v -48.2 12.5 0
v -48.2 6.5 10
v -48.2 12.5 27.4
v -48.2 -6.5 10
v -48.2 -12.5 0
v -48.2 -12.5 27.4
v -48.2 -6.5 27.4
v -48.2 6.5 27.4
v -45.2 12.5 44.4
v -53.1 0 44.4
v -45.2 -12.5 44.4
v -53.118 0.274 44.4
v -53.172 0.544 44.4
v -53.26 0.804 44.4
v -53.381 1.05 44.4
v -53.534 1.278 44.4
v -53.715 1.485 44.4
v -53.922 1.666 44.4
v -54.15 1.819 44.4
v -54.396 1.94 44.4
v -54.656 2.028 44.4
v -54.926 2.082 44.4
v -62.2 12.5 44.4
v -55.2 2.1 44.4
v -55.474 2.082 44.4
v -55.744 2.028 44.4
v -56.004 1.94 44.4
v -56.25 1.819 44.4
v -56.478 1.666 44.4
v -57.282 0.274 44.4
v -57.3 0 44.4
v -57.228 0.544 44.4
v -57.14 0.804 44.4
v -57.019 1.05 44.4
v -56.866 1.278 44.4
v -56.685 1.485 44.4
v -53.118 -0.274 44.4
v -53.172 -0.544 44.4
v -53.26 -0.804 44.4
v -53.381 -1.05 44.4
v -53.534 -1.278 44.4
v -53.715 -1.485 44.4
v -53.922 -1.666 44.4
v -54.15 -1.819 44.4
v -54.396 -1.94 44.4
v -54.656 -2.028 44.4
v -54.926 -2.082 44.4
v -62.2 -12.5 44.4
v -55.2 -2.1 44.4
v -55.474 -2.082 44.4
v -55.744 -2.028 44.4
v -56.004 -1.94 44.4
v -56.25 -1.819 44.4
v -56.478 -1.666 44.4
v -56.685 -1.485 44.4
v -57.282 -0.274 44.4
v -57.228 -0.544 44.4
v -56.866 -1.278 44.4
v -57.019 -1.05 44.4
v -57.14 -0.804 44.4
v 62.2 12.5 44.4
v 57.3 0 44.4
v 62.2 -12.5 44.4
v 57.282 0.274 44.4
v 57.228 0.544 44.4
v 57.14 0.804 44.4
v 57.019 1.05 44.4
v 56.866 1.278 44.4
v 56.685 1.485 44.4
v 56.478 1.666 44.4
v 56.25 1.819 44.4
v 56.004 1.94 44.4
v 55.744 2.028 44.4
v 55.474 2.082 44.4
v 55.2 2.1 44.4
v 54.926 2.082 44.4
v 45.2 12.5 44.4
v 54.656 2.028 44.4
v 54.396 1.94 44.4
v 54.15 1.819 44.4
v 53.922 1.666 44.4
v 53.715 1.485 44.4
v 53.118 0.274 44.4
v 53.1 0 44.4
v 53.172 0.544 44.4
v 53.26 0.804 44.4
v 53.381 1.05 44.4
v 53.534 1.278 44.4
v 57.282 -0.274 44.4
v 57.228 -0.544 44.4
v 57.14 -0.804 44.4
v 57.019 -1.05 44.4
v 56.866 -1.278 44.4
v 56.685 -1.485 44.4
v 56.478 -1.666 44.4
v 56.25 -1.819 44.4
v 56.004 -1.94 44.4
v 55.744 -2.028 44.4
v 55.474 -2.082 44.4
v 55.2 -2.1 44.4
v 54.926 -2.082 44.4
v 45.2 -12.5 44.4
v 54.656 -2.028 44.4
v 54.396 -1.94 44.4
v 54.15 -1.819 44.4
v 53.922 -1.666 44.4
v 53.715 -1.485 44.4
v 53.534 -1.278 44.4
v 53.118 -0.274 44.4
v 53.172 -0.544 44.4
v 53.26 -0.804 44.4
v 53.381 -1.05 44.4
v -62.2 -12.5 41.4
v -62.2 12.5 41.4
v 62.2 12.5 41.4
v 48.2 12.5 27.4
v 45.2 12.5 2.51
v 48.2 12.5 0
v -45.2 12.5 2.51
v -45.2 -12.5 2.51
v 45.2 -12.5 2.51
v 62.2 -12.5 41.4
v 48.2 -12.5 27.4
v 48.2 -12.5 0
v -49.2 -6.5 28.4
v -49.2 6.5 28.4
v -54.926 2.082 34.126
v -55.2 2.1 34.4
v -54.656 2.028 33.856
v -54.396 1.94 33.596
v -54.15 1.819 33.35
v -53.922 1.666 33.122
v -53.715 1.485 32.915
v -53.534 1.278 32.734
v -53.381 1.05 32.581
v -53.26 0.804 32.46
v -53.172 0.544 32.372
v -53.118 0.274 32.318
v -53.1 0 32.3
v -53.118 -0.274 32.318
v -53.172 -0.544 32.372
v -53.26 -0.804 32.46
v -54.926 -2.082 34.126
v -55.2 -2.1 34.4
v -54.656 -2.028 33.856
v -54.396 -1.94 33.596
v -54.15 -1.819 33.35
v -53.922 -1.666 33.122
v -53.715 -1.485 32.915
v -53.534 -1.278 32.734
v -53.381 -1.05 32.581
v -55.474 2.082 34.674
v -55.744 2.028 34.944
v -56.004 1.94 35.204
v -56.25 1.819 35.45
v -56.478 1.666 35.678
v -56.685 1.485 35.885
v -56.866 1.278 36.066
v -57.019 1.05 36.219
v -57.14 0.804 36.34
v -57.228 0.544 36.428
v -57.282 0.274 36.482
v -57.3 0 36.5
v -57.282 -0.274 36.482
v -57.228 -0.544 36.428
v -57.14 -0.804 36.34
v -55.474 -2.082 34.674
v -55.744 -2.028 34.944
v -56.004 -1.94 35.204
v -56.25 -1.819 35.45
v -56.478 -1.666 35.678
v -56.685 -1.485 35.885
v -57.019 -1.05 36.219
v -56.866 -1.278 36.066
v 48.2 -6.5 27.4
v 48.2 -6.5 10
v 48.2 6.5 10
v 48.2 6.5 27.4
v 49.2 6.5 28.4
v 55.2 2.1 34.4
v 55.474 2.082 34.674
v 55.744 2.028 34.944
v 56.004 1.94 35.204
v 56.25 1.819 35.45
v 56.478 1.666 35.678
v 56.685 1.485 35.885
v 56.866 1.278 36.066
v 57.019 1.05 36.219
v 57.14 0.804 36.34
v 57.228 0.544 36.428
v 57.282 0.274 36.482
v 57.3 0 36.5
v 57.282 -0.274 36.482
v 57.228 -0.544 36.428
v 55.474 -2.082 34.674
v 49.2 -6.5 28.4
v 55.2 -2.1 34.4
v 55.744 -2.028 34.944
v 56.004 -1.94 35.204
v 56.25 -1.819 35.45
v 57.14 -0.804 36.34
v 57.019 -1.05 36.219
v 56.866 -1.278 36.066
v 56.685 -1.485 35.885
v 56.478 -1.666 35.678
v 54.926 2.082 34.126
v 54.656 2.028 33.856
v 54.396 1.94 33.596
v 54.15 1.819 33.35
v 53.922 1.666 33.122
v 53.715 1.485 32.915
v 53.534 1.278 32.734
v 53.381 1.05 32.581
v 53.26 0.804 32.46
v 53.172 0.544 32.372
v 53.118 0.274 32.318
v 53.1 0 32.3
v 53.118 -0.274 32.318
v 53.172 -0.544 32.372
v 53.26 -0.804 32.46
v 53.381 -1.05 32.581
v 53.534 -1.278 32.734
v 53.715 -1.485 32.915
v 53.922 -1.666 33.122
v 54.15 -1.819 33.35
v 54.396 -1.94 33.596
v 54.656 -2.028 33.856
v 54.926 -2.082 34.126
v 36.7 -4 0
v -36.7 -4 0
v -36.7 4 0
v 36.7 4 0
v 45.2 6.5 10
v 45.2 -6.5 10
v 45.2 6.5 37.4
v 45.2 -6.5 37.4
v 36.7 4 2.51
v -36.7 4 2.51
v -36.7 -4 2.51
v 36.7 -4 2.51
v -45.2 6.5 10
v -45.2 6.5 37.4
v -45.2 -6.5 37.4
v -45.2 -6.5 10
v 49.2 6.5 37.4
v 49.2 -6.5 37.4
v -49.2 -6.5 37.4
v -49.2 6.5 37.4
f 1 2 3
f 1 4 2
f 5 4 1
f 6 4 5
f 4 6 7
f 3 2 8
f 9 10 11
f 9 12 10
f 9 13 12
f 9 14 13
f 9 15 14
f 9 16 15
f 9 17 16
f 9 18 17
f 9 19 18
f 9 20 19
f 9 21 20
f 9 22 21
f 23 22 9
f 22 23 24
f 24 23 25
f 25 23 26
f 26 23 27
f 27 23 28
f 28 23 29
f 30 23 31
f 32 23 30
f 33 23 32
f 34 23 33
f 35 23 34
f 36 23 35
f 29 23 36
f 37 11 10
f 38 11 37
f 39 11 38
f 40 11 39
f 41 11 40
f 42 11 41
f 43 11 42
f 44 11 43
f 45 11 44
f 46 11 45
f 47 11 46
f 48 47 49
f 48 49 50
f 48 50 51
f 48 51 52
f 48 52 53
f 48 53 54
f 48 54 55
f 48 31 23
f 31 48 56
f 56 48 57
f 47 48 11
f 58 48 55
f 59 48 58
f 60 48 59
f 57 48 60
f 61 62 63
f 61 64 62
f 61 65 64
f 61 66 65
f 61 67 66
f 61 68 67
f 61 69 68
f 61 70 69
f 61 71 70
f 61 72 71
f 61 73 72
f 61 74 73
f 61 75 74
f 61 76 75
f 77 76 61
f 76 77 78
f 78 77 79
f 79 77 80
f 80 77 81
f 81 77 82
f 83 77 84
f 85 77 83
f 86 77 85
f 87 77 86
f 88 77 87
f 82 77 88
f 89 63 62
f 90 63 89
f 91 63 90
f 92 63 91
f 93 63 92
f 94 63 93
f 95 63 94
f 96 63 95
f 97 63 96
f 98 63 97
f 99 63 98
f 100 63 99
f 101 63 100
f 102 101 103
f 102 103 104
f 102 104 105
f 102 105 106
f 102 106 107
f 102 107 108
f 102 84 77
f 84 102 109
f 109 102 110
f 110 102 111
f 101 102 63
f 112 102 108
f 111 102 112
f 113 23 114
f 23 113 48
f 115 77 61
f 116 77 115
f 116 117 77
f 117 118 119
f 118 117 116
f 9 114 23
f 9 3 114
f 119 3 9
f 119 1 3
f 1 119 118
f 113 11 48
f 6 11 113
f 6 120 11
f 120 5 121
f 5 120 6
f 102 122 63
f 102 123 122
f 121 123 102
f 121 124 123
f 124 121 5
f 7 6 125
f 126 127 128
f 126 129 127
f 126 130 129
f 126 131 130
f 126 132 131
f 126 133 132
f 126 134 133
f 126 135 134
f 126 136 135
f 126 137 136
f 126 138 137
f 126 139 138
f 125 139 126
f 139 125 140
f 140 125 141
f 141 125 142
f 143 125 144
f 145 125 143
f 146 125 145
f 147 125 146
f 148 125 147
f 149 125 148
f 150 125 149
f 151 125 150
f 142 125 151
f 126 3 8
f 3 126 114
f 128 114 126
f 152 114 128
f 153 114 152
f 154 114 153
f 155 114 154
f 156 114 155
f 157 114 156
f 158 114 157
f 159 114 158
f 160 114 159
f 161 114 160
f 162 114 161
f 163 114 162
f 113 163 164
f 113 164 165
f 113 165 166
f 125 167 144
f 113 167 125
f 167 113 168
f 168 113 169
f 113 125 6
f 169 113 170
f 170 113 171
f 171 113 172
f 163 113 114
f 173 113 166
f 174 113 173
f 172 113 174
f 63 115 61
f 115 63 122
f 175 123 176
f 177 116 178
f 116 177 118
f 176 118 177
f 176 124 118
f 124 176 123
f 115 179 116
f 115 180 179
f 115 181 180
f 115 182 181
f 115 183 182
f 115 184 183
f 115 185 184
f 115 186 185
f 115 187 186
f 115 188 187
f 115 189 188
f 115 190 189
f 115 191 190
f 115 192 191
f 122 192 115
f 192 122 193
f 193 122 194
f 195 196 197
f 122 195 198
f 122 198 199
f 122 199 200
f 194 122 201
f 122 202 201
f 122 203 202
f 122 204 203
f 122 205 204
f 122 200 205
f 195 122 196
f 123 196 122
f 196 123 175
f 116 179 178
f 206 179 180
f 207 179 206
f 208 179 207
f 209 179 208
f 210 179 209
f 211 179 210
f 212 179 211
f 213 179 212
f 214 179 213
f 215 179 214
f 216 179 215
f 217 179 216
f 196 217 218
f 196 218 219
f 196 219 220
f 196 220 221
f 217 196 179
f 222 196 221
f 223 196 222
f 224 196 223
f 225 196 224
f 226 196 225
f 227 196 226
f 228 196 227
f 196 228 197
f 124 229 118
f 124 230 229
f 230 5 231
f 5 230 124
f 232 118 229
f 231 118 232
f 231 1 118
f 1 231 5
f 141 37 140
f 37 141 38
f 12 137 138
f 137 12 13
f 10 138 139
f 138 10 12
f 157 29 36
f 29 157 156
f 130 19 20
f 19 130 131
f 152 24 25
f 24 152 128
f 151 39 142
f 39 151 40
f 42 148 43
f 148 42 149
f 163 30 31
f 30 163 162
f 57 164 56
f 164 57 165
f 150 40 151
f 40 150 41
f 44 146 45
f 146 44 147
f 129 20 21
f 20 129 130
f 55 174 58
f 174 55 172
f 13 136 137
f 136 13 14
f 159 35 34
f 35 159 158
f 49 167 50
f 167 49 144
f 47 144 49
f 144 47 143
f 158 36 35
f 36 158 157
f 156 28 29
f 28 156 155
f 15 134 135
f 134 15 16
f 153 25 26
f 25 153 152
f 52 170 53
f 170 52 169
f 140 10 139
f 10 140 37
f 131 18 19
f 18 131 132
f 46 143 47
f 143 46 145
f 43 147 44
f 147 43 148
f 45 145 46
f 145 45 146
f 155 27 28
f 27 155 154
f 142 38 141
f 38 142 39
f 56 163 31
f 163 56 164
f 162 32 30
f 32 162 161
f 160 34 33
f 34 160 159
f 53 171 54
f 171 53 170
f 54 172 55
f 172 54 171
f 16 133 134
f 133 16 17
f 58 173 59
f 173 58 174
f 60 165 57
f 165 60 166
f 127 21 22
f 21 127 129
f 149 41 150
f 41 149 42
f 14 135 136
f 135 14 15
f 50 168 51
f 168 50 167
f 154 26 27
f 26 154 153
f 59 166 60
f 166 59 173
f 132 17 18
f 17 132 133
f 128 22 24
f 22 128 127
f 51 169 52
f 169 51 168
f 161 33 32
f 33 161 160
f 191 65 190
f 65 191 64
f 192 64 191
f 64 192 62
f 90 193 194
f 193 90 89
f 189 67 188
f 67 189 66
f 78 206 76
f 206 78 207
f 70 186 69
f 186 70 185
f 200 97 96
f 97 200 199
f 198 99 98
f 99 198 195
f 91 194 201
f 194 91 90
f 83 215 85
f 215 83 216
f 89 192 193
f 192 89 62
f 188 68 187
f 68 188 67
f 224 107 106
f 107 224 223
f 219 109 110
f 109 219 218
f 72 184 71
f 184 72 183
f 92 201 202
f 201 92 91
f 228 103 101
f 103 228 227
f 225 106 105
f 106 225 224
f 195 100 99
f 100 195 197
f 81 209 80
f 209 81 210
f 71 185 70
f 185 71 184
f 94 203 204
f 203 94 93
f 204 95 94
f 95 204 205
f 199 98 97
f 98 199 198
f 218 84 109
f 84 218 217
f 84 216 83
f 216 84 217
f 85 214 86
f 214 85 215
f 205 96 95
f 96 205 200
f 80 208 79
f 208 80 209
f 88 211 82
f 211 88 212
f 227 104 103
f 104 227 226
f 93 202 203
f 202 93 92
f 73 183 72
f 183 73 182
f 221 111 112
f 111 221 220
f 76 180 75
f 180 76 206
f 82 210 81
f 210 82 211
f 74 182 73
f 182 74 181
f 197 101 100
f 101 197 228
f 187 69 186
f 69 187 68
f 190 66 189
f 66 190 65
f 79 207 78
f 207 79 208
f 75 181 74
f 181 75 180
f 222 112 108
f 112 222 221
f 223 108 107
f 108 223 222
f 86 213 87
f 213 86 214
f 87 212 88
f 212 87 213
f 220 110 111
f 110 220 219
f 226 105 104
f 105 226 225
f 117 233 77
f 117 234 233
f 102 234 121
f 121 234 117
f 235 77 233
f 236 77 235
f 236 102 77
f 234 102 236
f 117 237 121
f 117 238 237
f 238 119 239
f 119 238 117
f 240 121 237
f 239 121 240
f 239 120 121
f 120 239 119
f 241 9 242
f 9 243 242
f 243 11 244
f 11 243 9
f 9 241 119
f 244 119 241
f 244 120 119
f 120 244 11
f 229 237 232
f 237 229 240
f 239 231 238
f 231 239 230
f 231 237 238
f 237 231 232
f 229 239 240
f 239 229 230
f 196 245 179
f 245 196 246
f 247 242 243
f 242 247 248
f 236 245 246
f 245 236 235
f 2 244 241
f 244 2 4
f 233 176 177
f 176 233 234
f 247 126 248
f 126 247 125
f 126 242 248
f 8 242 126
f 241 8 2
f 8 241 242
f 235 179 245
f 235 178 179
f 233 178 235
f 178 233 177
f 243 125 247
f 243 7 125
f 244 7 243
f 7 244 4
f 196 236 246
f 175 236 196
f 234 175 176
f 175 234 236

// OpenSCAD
// file: ../../lib/saddle.scad
/* Reusable under-desk saddle strap.

   Print TWO per device. Each is a U-channel that passes under the device and
   rises up two opposite faces, with a flange on top of each wall screwing into
   the underside of a desk. Unlike lib/end_bracket.scad it has NO end walls, so
   it grips a band across the middle of a device rather than cupping an end.

   Use this when the device has ports or connectors on faces an end bracket
   would cover. The two straps sit inset from the corners, leaving both ends
   fully open and the centre of each long face clear.

   The device is retained by gravity and located by the two walls. Nothing
   clamps it, and it lifts straight out.

   Prints floor-down with no support: the flange undersides are continuous
   45 degree chamfers over the full strap width, so there is no flat overhang.

   Usage:
       use <../lib/saddle.scad>
       saddle(device_w = 121.55, device_h = 40.07);
*/

module saddle(
    device_w,
    device_h,

    saddle_w = 25.0,

    fit_clear = 0.4,
    head_gap  = 0.4,

    wall    = 3.0,
    floor_t = 3.0,
    rim     = 7.0,

    flange_t = 3.0,
    flange_w = 14.0,
    screw_d  = 4.2,

    wall_win   = true,
    win_border = 7.0,
    win_w      = 13.0
) {
    pocket_w = device_w + fit_clear;
    wall_h   = device_h + head_gap;
    total_h  = floor_t + wall_h;
    outer_w  = pocket_w + 2 * wall;
    eps      = 0.01;

    module body() {
        translate([0, 0, total_h / 2])
            cube([outer_w, saddle_w, total_h], center = true);
    }

    /* Open in Y at both ends: this is a strap, not a cup. */
    module pocket() {
        translate([0, 0, floor_t + wall_h / 2 + eps])
            cube([pocket_w, saddle_w + 2, wall_h + 1], center = true);
    }

    module floor_window() {
        translate([0, 0, floor_t / 2])
            cube([pocket_w - 2 * rim, saddle_w - 2 * rim, floor_t + 2],
                 center = true);
    }

    module wall_windows() {
        h = wall_h - 2 * win_border;
        translate([0, 0, floor_t + wall_h / 2])
            cube([outer_w + 2, win_w, h], center = true);
    }

    module flange(sx) {
        translate([sx * (outer_w / 2 + flange_w / 2), 0,
                   total_h - flange_t / 2])
            cube([flange_w, saddle_w, flange_t], center = true);
    }

    /* Continuous over the full strap width. Discrete gussets would leave flat
       overhang between them, and a flange is anchored on one edge only, so
       those gaps are cantilevers rather than bridges. */
    module chamfer(sx) {
        translate([sx * outer_w / 2, 0, total_h - flange_t])
            rotate([90, 0, 0])
                linear_extrude(saddle_w, center = true)
                    polygon([[0, 0], [sx * flange_w, 0], [0, -flange_w]]);
    }

    module screws() {
        for (sx = [-1, 1])
            translate([sx * (outer_w / 2 + flange_w / 2), 0, total_h / 2])
                cylinder(d = screw_d, h = total_h + 2, center = true);
    }

    difference() {
        union() {
            body();
            for (sx = [-1, 1]) {
                flange(sx);
                chamfer(sx);
            }
        }
        pocket();
        floor_window();
        if (wall_win) wall_windows();
        screws();
    }
}
// main file
/* SPGUARD multi-port GaN desktop charger - under-desk saddle. Print two.

   Ports are on three faces: PD/C1-C2 on one short end, P1-P4 across the front,
   PD/C3-C4 on the other short end. Only the back carries just the power cable.
   No pair of opposite faces is free, so an end bracket (lib/end_bracket.scad)
   cannot be used here - it would cover C1-C4 whichever way it was turned.

   A saddle strap solves it: both short ends stay completely open, and because
   the straps sit near the ends the middle of the front face stays clear of
   P1-P4.

   Placement, measured along the 154.20 mm length from each corner:
       0  -> 16 mm    keep clear, plugged cables need the room
       16 -> 41 mm    the strap sits here (25 mm band)

   So saddle_w is 25 and each strap is inset 16 mm from its end. That leaves
   72.2 mm of open span between the two straps.

   Heat: this is a high-wattage GaN charger and the underside is the likely
   vent face. Two 25 mm straps under a 154.20 mm device leave about 68% of the
   underside open to air, and the floor is further cut back to a rim.
*/

use <../../lib/saddle.scad>

$fn = 48;

/* device_h is 41.0, the height INCLUDING the rubber feet, not the 40.07 bare
   body. The charger rests on its feet, so that is the real dimension the pocket
   has to clear. Size to the bare body and the device stands proud of the walls
   and bears against the desk itself, which is what head_gap exists to prevent.

   rim is widened from the 7.0 default to 8.5, narrowing the floor slot to 8 mm
   so a rubber foot cannot drop into it and rock the charger. Airflow does not
   suffer: the two straps already leave ~68% of the underside open. */

saddle(
    device_w = 90.00,
    device_h = 41.00,
    saddle_w = 25.0,
    rim      = 8.5
);
